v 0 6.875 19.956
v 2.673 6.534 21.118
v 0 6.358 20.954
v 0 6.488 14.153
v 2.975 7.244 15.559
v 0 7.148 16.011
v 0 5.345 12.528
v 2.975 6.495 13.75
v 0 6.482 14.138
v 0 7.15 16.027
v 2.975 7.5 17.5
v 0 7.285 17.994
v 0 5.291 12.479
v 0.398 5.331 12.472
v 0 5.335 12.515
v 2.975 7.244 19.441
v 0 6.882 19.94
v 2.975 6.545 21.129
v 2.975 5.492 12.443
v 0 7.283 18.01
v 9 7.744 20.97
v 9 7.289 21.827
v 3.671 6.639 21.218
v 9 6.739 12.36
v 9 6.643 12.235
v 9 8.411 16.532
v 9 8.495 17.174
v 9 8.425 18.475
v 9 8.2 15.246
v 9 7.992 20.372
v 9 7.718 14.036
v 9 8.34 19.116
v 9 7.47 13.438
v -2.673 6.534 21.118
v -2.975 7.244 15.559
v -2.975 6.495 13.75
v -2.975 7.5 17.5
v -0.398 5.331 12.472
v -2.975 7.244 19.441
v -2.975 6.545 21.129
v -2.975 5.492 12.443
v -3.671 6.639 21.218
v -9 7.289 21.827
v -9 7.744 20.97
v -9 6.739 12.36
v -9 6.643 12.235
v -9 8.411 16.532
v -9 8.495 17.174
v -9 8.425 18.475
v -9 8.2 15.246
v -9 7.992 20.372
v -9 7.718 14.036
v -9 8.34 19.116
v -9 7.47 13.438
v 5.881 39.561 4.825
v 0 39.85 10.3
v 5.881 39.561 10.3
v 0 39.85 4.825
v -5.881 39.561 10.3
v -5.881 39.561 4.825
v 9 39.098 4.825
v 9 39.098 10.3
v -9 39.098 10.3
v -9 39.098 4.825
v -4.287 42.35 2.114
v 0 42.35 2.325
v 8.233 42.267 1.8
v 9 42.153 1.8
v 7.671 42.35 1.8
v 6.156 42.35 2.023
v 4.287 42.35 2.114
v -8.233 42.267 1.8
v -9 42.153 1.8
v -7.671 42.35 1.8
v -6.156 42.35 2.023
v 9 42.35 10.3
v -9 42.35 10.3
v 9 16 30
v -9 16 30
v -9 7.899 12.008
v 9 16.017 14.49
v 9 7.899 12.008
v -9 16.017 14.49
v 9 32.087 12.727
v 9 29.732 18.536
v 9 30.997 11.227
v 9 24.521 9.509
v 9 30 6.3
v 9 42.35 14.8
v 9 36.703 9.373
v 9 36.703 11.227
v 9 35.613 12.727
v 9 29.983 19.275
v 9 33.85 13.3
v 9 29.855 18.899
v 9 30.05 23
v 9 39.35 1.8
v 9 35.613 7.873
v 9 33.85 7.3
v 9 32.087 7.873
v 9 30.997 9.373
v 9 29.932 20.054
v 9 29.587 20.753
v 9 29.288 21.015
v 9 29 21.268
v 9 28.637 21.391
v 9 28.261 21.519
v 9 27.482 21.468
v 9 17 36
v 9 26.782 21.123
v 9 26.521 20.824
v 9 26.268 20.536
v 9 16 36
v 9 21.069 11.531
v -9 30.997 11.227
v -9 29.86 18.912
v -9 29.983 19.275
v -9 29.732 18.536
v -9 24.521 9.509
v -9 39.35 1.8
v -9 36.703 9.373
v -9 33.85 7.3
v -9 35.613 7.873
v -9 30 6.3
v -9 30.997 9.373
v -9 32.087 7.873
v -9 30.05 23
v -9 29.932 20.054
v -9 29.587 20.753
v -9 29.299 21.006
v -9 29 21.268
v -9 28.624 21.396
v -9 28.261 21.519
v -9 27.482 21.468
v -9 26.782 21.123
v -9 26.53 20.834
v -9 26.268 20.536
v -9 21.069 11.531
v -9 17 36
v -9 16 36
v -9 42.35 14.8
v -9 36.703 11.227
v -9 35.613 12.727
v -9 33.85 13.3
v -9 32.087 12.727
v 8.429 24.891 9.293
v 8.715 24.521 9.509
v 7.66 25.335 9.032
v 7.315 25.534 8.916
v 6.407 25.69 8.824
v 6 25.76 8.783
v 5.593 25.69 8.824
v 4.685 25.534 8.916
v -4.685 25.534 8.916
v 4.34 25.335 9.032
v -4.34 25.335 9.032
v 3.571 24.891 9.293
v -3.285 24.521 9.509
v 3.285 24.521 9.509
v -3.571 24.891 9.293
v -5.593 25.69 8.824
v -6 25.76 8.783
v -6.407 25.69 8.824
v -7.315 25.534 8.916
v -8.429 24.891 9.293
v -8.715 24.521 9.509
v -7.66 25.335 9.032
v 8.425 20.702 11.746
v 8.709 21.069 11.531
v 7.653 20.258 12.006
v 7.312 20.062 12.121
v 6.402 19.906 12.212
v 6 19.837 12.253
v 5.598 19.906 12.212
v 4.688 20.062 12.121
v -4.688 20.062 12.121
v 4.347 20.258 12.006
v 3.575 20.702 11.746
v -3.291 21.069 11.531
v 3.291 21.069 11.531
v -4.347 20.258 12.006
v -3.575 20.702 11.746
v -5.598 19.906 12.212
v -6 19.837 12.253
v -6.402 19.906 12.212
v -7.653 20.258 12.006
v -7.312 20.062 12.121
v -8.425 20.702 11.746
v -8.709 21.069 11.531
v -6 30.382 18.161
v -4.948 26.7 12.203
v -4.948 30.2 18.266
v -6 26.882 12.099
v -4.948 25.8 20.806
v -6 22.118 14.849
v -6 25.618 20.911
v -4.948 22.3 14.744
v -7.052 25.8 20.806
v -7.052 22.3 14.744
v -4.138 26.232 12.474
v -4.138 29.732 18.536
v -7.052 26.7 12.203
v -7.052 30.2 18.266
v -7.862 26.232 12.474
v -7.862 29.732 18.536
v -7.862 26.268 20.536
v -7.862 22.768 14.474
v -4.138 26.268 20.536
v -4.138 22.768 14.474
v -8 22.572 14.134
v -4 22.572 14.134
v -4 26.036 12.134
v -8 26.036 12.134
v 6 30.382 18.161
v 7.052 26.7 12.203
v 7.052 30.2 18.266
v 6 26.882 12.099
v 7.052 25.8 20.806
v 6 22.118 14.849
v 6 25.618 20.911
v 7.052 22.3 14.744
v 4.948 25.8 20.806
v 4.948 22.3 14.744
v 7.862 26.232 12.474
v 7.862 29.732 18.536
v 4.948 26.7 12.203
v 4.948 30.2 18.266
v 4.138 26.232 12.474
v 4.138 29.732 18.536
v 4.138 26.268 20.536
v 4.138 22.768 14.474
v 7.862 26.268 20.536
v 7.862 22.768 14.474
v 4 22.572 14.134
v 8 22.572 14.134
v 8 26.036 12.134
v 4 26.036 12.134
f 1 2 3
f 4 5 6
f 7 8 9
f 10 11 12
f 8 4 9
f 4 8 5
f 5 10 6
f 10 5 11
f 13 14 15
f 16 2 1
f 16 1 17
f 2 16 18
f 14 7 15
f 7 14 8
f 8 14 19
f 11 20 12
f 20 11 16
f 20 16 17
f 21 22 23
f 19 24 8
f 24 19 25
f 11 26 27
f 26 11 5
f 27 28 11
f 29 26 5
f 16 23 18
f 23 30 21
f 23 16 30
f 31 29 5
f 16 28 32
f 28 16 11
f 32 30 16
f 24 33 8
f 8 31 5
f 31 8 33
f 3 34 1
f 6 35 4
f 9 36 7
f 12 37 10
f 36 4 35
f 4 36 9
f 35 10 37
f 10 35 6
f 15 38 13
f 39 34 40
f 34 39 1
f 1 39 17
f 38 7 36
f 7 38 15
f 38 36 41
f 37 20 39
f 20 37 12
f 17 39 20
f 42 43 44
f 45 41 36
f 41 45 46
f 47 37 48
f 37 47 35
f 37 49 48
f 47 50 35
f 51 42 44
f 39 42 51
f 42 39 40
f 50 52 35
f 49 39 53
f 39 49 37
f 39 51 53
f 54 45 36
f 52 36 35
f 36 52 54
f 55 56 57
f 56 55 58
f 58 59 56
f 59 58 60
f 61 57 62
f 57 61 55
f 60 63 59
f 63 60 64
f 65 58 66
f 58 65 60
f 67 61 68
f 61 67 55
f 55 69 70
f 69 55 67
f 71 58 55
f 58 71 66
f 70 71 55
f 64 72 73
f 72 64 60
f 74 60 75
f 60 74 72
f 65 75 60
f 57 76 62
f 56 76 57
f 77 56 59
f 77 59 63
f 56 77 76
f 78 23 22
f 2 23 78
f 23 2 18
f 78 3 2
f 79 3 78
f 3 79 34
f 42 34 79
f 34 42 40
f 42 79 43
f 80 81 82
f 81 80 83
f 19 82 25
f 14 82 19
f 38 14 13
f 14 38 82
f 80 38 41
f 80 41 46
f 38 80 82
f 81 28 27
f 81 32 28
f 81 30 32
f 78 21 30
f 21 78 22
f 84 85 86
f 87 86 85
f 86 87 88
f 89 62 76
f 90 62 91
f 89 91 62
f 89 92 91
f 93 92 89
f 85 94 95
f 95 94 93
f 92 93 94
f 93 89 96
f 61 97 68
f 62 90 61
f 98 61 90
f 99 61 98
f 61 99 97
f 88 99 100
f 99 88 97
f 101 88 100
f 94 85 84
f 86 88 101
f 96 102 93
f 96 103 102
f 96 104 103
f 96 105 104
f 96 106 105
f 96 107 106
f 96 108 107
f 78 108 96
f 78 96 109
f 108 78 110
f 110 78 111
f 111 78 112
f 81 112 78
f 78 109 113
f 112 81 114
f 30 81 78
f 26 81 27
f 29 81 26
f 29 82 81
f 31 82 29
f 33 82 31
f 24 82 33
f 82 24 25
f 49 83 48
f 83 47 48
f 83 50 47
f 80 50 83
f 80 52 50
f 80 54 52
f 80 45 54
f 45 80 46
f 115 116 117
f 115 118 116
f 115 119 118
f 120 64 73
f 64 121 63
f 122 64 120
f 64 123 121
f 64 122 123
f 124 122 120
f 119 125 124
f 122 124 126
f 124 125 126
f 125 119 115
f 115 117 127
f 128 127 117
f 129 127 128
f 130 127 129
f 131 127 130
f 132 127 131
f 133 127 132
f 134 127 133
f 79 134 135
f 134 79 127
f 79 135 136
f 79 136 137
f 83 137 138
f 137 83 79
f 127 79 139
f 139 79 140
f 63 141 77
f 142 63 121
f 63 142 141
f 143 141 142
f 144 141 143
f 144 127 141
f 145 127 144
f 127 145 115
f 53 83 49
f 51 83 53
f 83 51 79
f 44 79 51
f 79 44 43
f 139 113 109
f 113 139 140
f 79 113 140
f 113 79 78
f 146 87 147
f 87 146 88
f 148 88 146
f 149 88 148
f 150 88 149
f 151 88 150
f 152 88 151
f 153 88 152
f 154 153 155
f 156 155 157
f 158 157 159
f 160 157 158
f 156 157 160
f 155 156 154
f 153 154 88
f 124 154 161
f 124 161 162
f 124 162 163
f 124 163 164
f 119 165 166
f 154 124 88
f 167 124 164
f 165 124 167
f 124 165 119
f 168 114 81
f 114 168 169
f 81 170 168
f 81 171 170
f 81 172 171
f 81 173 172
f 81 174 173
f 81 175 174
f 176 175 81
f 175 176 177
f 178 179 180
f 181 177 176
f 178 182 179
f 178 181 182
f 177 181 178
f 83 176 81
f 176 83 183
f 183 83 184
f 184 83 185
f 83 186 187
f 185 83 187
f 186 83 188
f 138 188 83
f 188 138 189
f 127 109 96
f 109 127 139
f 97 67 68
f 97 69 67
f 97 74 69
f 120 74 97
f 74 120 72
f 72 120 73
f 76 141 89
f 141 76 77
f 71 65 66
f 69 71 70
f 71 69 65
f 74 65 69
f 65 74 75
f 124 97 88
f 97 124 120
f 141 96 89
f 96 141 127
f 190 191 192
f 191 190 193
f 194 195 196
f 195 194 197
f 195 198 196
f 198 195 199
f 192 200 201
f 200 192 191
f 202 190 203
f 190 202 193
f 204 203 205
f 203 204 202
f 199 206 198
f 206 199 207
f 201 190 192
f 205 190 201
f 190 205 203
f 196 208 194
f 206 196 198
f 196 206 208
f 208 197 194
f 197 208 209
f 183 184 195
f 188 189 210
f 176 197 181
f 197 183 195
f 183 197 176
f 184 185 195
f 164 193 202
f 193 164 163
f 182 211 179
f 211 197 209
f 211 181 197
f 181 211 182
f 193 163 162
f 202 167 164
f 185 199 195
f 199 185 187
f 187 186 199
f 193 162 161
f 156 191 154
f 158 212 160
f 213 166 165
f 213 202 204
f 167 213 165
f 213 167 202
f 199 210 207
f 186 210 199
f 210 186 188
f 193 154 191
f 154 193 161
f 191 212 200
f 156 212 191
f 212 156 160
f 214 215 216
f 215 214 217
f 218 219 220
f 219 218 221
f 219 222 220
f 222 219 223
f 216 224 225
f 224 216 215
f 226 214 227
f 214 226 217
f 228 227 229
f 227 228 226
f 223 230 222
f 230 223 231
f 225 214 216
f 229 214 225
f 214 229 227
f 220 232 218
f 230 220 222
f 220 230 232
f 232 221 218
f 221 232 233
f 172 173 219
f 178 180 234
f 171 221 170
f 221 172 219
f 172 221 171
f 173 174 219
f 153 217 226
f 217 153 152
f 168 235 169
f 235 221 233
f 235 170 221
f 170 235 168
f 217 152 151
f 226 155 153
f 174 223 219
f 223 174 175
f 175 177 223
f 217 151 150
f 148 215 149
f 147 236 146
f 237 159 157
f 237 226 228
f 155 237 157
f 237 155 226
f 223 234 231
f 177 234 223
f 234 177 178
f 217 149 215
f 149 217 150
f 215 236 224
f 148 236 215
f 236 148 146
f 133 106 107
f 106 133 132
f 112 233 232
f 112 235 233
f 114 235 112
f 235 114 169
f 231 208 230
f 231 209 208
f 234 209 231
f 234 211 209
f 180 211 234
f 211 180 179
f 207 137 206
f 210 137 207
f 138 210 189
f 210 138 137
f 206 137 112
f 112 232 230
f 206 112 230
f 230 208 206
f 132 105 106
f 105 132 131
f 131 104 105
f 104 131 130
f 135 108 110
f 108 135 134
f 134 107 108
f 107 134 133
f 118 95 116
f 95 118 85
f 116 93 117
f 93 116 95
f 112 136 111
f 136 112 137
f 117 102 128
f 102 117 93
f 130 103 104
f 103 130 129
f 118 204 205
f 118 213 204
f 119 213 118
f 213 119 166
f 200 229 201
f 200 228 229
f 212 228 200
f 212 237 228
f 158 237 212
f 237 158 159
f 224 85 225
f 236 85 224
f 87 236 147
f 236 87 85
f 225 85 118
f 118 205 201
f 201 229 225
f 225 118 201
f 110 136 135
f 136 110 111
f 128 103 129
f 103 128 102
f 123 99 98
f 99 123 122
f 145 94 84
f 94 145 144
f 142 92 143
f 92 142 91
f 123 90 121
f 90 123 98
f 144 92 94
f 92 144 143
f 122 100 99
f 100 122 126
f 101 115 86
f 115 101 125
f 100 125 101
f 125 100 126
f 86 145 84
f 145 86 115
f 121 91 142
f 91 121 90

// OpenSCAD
/* A plastic guide that sits on my MKS Urban Step In pedals to stop me clipping in to the back of them. 

Released under CERN open hardware license, Richard Bowman, 2016
*/

/*
The origin is on the plane of the platform side of the pedal (that's z=0) with y=0 
at the outside edge of the rear wire.  x=0 is the centre of the cleat.
*/
use <utilities.scad>;

wire_top=37-1.0; //top of the gripping wire
d = 0.05; //a small distance

module y_w_h_point(y,w,h){
    translate([0,y,0]) cube([w,d,2*h],center=true);
}

module pedal_bits_front(){
    union(){
        //ensure we don't protrude under the wire or above it
        //translate([0,-999+4,0]) cube(999*2,center=true);
        //translate([0,0,999+wire_top-1]) cube(999*2,center=true);
        
        sequential_hull(){
            y_w_h_point(0, 6, 25);
            y_w_h_point(9.5, 6, 25);
            y_w_h_point(14, 6, 22);
            hull(){
                y_w_h_point(11, 17, 22);
                y_w_h_point(11, 21, 17);
            }
            hull(){
                y_w_h_point(27, 15, 22);
                y_w_h_point(30, 18, 17);
            }
            y_w_h_point(30, 6, 17);
            y_w_h_point(36, 6, 7.67);
        }
        
        //spring
        translate([0,5,19]) rotate([0,90,0]) cylinder(d=13,h=50, center=true);
        //adjusting bolt
        //translate([0,18.5, 21]) cylinder(d1=10, d2=16, h=wire_top-21);
        translate([0,19.5, 21]) cube([10,12,(wire_top-21)*2],center=true);
    }
}

module guide_front(){
    rotate([atan((wire_top-1-25)/(29-4))+180,0,0]) difference(){
        hull(){
            translate([0,4,wire_top-1]) cube([20,d,d],center=true);
            translate([0,29,25]) cube([18,d,d],center=true);
            translate([0,4,18]) cube([20,d,d],center=true);
            translate([0,32,15]) cube([28,d,d],center=true);
        }
        pedal_bits();

        //cable tie point
        translate([0,16, 27]) cube([60,5,3],center=true);
    }
}

module rz_point(r,z){
    translate([0,0,z]) cylinder(r=r, h=d, center=true);
}

module guide_back(){
    axle_h = 17.5;
    back_edge = [0,39.6+0.25,10.3]; //upped this for a tighter fit
    pivot = [0,30,23];
    w = 18;
    difference(){
        union(){
            // main body of guide, with thin flexible part 
            sequential_hull(){
                translate([0,0,axle_h]) rotate([-atan((axle_h-back_edge[2])/back_edge[1]),0,0]) translate([0,7,0]) cube([w,7/2,8],center=true);
                translate([-w/2,16,axle_h-3]) cube([w,d,30-axle_h+3]);
                translate([-w/2,16,axle_h-3]) cube([w,1,wire_top-axle_h+3]);
                translate([-w/2,pivot[1],back_edge[2]-4]) cube([w,d,pivot[2]-back_edge[2]+4]);
                //translate(back_edge+[0,-1,-3.5]) cube([w,3,10],center=true);
                translate(back_edge+[0,1,-2]) cube([w,3,13],center=true);
            }
        }
        
        //axle
        translate([0,0,axle_h]) rotate([0,90,0]) reflect([0,0,1]) sequential_hull(){
            rz_point(7.3,0);
            rz_point(7.5,3);
            rz_point(9,12);
        }
        
        //back edge
        roc = 60;
        difference(){
            translate([-999,0,back_edge[2]-10]) cube([2,2,0]*999 + [0,0,10]);
            translate(back_edge-[0,roc,0]) sequential_hull(){
                $fn=64;
                rz_point(roc,0);
                rz_point(roc,-5.5);
                rz_point(roc+10,-5.5-10);
            }
        }
        
        //horizontal bolts near back
        translate(back_edge+[0,-6,0]) rotate([0,90,0]) cylinder(d=6,h=999,center=true);
//        translate(back_edge+[0,-4,5]) rotate([0,90,0]) cylinder(d=6,h=999,center=true);
        
        //flexible part, with bolts to jam it in
        translate(pivot) rotate([-30,0,0]){
            repeat([12,0,0], 2, center=true) translate([0,0,-4]) mirror([0,0,1]){
                cylinder(d=5.5,h=999, $fn=16);
                translate([0,0,7]) cylinder(d1=5.5, d2=15.5,h=25, $fn=16);
            }
            hull(){ //cut out a wedge so it can bend
                translate([0,0,-4]) rotate([0,90,0]) cylinder(r=2,h=999,center=true, $fn=16);
                translate([0,0,-40]) rotate([0,90,0]) cylinder(r=2,h=999,center=true, $fn=16);
            }
        }
    }
}

guide_back();
